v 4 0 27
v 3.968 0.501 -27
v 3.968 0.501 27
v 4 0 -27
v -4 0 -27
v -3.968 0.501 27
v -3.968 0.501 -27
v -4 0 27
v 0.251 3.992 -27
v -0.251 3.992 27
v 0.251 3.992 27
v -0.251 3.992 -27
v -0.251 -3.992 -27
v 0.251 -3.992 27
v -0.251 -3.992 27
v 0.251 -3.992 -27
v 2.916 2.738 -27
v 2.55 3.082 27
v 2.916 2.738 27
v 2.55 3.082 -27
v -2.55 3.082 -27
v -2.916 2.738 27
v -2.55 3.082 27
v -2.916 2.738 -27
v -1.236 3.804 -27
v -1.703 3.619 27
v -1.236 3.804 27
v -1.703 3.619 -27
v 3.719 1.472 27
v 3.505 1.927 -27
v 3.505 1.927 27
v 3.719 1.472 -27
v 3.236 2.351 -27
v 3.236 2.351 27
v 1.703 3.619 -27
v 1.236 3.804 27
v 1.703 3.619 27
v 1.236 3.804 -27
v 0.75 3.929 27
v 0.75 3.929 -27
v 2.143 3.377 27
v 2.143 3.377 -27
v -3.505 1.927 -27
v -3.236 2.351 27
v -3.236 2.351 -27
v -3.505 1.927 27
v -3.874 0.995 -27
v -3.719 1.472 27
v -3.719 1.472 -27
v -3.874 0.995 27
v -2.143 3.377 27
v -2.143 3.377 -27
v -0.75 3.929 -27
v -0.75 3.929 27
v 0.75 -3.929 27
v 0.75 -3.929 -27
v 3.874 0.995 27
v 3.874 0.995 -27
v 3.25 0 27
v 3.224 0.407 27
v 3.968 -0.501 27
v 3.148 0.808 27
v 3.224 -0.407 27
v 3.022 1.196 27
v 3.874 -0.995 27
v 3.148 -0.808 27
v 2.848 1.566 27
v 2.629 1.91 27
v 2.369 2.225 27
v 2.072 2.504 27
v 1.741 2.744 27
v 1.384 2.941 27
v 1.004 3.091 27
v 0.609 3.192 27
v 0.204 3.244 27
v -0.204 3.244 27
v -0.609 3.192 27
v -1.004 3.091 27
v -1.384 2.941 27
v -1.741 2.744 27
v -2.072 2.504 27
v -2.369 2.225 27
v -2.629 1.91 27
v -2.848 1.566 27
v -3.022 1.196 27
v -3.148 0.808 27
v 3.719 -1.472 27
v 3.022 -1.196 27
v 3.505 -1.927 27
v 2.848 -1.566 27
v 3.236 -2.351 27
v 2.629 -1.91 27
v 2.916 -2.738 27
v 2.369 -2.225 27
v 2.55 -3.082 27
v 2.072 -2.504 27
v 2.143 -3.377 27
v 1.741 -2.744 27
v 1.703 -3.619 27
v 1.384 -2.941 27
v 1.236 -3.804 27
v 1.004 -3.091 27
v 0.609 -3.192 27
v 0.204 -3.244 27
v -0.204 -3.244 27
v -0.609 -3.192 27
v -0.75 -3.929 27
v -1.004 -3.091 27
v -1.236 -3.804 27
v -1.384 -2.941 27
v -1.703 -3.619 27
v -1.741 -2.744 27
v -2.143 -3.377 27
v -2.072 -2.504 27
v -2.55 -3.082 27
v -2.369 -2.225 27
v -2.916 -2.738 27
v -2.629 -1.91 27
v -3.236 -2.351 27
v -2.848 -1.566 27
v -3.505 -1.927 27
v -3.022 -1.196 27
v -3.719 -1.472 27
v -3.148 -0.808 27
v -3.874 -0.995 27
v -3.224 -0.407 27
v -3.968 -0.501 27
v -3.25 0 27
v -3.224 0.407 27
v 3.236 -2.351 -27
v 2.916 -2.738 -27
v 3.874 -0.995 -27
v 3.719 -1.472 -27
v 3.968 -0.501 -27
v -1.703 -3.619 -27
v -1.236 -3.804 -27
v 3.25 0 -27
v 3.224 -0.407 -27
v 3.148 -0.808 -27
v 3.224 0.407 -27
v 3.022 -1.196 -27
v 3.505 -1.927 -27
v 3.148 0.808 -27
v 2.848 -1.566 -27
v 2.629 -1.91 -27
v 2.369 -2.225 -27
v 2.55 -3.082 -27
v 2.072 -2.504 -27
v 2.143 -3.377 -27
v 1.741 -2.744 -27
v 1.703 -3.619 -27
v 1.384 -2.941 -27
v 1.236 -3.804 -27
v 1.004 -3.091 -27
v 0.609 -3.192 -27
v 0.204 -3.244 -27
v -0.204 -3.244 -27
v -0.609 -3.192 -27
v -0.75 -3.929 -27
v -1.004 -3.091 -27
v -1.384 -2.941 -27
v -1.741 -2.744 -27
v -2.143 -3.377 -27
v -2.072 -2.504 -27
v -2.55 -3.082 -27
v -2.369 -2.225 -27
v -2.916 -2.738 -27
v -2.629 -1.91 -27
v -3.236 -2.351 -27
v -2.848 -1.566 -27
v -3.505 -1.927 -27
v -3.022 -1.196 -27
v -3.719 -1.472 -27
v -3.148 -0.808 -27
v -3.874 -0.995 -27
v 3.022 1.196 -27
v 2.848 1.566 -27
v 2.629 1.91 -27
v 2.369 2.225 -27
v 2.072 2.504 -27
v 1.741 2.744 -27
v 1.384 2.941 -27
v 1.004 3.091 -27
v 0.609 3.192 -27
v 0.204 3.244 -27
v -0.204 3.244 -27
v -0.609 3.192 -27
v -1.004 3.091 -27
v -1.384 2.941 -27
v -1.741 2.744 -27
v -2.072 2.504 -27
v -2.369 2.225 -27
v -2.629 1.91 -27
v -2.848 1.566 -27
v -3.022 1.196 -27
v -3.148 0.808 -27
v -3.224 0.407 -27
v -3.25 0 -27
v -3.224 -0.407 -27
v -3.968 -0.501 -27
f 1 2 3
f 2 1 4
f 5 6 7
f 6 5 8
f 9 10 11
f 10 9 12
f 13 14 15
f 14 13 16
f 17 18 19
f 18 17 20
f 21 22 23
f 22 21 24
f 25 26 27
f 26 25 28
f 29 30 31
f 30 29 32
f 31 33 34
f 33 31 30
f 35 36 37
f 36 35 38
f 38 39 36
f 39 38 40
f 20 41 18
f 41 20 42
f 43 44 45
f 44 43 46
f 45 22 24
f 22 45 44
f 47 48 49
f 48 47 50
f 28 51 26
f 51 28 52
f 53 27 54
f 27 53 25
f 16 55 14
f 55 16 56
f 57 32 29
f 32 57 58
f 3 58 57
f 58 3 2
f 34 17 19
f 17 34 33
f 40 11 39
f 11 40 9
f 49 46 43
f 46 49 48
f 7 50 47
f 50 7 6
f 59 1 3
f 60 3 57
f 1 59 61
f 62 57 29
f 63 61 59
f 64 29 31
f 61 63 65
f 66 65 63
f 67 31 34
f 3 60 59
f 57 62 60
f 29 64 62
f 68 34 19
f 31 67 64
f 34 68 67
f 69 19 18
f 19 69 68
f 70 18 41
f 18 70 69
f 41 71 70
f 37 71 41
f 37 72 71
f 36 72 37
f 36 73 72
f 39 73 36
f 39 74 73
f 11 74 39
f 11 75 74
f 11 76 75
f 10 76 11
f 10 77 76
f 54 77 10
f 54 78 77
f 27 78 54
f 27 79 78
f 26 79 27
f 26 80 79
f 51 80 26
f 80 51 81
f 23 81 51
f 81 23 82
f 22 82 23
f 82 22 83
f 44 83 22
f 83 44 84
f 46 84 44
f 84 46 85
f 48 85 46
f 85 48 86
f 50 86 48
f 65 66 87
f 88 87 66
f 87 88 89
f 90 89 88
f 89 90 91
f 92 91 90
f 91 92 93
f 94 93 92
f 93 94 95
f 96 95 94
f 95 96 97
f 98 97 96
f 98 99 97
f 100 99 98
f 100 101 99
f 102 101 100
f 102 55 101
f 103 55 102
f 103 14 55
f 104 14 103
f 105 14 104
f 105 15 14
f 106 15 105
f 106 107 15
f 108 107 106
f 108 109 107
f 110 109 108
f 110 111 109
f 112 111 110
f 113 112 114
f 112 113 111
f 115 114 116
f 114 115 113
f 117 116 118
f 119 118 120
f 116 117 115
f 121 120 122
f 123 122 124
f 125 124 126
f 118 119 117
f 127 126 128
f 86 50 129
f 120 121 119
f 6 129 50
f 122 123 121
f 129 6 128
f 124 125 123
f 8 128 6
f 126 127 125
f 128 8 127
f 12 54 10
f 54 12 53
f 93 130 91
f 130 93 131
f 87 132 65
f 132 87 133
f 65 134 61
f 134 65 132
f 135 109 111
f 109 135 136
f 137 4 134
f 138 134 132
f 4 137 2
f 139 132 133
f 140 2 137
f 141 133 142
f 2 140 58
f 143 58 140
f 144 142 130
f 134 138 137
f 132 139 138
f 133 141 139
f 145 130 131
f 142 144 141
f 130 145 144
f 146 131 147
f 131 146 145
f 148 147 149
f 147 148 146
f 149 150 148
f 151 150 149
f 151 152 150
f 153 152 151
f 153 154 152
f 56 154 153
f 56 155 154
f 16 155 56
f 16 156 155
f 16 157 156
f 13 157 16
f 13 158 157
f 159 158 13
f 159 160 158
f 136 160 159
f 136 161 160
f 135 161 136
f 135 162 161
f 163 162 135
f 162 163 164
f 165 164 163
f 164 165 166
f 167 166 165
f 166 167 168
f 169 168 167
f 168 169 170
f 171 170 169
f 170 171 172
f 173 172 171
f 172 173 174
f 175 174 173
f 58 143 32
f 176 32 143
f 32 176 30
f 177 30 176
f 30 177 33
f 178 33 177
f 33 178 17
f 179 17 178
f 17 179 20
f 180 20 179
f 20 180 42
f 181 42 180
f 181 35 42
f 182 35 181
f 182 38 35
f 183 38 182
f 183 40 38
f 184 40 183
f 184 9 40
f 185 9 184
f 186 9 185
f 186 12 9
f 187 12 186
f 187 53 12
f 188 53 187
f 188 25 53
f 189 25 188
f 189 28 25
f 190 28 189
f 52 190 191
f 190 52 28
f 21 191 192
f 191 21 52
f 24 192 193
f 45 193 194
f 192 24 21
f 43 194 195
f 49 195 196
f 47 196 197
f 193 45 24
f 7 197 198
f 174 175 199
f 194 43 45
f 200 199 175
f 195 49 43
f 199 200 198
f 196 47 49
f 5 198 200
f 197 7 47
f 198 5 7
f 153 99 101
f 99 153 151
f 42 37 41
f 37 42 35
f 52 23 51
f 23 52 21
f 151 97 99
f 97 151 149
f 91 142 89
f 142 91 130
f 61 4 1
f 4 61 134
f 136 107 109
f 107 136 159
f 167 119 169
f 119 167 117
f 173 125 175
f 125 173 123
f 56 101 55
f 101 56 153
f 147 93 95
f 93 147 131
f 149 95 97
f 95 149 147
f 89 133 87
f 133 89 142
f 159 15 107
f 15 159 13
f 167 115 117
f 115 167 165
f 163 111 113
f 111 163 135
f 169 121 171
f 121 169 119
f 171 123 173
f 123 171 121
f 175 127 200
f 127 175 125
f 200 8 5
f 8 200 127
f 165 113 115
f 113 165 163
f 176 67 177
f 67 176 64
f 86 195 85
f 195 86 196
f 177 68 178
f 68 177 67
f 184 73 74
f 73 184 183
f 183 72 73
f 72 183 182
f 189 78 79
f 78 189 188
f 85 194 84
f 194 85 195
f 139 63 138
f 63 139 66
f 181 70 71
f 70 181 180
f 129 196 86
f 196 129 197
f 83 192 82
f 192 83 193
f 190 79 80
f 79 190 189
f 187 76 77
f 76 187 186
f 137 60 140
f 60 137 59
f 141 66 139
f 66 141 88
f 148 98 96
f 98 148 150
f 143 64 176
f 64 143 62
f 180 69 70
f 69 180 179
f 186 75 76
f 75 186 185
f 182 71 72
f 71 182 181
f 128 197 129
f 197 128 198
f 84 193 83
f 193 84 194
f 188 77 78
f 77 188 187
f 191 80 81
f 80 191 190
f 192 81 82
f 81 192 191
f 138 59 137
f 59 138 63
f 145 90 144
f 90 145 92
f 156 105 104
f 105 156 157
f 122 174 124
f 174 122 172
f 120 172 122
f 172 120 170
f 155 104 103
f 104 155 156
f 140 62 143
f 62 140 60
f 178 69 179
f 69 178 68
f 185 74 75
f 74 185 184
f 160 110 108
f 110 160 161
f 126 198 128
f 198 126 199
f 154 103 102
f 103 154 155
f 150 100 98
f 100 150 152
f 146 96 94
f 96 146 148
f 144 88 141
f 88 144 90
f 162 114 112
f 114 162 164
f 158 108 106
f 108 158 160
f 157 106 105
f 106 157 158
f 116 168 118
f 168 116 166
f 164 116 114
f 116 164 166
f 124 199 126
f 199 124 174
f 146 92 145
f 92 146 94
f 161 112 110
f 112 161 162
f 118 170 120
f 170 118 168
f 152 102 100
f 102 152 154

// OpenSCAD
$fn = 50;


difference() {
	union() {
		translate(v = [0, 0, -27.0000000000]) {
			cylinder(h = 54, r = 4.0000000000);
		}
	}
	union() {
		translate(v = [0, 0, -100.0000000000]) {
			cylinder(h = 200, r = 3.2500000000);
		}
	}
}
